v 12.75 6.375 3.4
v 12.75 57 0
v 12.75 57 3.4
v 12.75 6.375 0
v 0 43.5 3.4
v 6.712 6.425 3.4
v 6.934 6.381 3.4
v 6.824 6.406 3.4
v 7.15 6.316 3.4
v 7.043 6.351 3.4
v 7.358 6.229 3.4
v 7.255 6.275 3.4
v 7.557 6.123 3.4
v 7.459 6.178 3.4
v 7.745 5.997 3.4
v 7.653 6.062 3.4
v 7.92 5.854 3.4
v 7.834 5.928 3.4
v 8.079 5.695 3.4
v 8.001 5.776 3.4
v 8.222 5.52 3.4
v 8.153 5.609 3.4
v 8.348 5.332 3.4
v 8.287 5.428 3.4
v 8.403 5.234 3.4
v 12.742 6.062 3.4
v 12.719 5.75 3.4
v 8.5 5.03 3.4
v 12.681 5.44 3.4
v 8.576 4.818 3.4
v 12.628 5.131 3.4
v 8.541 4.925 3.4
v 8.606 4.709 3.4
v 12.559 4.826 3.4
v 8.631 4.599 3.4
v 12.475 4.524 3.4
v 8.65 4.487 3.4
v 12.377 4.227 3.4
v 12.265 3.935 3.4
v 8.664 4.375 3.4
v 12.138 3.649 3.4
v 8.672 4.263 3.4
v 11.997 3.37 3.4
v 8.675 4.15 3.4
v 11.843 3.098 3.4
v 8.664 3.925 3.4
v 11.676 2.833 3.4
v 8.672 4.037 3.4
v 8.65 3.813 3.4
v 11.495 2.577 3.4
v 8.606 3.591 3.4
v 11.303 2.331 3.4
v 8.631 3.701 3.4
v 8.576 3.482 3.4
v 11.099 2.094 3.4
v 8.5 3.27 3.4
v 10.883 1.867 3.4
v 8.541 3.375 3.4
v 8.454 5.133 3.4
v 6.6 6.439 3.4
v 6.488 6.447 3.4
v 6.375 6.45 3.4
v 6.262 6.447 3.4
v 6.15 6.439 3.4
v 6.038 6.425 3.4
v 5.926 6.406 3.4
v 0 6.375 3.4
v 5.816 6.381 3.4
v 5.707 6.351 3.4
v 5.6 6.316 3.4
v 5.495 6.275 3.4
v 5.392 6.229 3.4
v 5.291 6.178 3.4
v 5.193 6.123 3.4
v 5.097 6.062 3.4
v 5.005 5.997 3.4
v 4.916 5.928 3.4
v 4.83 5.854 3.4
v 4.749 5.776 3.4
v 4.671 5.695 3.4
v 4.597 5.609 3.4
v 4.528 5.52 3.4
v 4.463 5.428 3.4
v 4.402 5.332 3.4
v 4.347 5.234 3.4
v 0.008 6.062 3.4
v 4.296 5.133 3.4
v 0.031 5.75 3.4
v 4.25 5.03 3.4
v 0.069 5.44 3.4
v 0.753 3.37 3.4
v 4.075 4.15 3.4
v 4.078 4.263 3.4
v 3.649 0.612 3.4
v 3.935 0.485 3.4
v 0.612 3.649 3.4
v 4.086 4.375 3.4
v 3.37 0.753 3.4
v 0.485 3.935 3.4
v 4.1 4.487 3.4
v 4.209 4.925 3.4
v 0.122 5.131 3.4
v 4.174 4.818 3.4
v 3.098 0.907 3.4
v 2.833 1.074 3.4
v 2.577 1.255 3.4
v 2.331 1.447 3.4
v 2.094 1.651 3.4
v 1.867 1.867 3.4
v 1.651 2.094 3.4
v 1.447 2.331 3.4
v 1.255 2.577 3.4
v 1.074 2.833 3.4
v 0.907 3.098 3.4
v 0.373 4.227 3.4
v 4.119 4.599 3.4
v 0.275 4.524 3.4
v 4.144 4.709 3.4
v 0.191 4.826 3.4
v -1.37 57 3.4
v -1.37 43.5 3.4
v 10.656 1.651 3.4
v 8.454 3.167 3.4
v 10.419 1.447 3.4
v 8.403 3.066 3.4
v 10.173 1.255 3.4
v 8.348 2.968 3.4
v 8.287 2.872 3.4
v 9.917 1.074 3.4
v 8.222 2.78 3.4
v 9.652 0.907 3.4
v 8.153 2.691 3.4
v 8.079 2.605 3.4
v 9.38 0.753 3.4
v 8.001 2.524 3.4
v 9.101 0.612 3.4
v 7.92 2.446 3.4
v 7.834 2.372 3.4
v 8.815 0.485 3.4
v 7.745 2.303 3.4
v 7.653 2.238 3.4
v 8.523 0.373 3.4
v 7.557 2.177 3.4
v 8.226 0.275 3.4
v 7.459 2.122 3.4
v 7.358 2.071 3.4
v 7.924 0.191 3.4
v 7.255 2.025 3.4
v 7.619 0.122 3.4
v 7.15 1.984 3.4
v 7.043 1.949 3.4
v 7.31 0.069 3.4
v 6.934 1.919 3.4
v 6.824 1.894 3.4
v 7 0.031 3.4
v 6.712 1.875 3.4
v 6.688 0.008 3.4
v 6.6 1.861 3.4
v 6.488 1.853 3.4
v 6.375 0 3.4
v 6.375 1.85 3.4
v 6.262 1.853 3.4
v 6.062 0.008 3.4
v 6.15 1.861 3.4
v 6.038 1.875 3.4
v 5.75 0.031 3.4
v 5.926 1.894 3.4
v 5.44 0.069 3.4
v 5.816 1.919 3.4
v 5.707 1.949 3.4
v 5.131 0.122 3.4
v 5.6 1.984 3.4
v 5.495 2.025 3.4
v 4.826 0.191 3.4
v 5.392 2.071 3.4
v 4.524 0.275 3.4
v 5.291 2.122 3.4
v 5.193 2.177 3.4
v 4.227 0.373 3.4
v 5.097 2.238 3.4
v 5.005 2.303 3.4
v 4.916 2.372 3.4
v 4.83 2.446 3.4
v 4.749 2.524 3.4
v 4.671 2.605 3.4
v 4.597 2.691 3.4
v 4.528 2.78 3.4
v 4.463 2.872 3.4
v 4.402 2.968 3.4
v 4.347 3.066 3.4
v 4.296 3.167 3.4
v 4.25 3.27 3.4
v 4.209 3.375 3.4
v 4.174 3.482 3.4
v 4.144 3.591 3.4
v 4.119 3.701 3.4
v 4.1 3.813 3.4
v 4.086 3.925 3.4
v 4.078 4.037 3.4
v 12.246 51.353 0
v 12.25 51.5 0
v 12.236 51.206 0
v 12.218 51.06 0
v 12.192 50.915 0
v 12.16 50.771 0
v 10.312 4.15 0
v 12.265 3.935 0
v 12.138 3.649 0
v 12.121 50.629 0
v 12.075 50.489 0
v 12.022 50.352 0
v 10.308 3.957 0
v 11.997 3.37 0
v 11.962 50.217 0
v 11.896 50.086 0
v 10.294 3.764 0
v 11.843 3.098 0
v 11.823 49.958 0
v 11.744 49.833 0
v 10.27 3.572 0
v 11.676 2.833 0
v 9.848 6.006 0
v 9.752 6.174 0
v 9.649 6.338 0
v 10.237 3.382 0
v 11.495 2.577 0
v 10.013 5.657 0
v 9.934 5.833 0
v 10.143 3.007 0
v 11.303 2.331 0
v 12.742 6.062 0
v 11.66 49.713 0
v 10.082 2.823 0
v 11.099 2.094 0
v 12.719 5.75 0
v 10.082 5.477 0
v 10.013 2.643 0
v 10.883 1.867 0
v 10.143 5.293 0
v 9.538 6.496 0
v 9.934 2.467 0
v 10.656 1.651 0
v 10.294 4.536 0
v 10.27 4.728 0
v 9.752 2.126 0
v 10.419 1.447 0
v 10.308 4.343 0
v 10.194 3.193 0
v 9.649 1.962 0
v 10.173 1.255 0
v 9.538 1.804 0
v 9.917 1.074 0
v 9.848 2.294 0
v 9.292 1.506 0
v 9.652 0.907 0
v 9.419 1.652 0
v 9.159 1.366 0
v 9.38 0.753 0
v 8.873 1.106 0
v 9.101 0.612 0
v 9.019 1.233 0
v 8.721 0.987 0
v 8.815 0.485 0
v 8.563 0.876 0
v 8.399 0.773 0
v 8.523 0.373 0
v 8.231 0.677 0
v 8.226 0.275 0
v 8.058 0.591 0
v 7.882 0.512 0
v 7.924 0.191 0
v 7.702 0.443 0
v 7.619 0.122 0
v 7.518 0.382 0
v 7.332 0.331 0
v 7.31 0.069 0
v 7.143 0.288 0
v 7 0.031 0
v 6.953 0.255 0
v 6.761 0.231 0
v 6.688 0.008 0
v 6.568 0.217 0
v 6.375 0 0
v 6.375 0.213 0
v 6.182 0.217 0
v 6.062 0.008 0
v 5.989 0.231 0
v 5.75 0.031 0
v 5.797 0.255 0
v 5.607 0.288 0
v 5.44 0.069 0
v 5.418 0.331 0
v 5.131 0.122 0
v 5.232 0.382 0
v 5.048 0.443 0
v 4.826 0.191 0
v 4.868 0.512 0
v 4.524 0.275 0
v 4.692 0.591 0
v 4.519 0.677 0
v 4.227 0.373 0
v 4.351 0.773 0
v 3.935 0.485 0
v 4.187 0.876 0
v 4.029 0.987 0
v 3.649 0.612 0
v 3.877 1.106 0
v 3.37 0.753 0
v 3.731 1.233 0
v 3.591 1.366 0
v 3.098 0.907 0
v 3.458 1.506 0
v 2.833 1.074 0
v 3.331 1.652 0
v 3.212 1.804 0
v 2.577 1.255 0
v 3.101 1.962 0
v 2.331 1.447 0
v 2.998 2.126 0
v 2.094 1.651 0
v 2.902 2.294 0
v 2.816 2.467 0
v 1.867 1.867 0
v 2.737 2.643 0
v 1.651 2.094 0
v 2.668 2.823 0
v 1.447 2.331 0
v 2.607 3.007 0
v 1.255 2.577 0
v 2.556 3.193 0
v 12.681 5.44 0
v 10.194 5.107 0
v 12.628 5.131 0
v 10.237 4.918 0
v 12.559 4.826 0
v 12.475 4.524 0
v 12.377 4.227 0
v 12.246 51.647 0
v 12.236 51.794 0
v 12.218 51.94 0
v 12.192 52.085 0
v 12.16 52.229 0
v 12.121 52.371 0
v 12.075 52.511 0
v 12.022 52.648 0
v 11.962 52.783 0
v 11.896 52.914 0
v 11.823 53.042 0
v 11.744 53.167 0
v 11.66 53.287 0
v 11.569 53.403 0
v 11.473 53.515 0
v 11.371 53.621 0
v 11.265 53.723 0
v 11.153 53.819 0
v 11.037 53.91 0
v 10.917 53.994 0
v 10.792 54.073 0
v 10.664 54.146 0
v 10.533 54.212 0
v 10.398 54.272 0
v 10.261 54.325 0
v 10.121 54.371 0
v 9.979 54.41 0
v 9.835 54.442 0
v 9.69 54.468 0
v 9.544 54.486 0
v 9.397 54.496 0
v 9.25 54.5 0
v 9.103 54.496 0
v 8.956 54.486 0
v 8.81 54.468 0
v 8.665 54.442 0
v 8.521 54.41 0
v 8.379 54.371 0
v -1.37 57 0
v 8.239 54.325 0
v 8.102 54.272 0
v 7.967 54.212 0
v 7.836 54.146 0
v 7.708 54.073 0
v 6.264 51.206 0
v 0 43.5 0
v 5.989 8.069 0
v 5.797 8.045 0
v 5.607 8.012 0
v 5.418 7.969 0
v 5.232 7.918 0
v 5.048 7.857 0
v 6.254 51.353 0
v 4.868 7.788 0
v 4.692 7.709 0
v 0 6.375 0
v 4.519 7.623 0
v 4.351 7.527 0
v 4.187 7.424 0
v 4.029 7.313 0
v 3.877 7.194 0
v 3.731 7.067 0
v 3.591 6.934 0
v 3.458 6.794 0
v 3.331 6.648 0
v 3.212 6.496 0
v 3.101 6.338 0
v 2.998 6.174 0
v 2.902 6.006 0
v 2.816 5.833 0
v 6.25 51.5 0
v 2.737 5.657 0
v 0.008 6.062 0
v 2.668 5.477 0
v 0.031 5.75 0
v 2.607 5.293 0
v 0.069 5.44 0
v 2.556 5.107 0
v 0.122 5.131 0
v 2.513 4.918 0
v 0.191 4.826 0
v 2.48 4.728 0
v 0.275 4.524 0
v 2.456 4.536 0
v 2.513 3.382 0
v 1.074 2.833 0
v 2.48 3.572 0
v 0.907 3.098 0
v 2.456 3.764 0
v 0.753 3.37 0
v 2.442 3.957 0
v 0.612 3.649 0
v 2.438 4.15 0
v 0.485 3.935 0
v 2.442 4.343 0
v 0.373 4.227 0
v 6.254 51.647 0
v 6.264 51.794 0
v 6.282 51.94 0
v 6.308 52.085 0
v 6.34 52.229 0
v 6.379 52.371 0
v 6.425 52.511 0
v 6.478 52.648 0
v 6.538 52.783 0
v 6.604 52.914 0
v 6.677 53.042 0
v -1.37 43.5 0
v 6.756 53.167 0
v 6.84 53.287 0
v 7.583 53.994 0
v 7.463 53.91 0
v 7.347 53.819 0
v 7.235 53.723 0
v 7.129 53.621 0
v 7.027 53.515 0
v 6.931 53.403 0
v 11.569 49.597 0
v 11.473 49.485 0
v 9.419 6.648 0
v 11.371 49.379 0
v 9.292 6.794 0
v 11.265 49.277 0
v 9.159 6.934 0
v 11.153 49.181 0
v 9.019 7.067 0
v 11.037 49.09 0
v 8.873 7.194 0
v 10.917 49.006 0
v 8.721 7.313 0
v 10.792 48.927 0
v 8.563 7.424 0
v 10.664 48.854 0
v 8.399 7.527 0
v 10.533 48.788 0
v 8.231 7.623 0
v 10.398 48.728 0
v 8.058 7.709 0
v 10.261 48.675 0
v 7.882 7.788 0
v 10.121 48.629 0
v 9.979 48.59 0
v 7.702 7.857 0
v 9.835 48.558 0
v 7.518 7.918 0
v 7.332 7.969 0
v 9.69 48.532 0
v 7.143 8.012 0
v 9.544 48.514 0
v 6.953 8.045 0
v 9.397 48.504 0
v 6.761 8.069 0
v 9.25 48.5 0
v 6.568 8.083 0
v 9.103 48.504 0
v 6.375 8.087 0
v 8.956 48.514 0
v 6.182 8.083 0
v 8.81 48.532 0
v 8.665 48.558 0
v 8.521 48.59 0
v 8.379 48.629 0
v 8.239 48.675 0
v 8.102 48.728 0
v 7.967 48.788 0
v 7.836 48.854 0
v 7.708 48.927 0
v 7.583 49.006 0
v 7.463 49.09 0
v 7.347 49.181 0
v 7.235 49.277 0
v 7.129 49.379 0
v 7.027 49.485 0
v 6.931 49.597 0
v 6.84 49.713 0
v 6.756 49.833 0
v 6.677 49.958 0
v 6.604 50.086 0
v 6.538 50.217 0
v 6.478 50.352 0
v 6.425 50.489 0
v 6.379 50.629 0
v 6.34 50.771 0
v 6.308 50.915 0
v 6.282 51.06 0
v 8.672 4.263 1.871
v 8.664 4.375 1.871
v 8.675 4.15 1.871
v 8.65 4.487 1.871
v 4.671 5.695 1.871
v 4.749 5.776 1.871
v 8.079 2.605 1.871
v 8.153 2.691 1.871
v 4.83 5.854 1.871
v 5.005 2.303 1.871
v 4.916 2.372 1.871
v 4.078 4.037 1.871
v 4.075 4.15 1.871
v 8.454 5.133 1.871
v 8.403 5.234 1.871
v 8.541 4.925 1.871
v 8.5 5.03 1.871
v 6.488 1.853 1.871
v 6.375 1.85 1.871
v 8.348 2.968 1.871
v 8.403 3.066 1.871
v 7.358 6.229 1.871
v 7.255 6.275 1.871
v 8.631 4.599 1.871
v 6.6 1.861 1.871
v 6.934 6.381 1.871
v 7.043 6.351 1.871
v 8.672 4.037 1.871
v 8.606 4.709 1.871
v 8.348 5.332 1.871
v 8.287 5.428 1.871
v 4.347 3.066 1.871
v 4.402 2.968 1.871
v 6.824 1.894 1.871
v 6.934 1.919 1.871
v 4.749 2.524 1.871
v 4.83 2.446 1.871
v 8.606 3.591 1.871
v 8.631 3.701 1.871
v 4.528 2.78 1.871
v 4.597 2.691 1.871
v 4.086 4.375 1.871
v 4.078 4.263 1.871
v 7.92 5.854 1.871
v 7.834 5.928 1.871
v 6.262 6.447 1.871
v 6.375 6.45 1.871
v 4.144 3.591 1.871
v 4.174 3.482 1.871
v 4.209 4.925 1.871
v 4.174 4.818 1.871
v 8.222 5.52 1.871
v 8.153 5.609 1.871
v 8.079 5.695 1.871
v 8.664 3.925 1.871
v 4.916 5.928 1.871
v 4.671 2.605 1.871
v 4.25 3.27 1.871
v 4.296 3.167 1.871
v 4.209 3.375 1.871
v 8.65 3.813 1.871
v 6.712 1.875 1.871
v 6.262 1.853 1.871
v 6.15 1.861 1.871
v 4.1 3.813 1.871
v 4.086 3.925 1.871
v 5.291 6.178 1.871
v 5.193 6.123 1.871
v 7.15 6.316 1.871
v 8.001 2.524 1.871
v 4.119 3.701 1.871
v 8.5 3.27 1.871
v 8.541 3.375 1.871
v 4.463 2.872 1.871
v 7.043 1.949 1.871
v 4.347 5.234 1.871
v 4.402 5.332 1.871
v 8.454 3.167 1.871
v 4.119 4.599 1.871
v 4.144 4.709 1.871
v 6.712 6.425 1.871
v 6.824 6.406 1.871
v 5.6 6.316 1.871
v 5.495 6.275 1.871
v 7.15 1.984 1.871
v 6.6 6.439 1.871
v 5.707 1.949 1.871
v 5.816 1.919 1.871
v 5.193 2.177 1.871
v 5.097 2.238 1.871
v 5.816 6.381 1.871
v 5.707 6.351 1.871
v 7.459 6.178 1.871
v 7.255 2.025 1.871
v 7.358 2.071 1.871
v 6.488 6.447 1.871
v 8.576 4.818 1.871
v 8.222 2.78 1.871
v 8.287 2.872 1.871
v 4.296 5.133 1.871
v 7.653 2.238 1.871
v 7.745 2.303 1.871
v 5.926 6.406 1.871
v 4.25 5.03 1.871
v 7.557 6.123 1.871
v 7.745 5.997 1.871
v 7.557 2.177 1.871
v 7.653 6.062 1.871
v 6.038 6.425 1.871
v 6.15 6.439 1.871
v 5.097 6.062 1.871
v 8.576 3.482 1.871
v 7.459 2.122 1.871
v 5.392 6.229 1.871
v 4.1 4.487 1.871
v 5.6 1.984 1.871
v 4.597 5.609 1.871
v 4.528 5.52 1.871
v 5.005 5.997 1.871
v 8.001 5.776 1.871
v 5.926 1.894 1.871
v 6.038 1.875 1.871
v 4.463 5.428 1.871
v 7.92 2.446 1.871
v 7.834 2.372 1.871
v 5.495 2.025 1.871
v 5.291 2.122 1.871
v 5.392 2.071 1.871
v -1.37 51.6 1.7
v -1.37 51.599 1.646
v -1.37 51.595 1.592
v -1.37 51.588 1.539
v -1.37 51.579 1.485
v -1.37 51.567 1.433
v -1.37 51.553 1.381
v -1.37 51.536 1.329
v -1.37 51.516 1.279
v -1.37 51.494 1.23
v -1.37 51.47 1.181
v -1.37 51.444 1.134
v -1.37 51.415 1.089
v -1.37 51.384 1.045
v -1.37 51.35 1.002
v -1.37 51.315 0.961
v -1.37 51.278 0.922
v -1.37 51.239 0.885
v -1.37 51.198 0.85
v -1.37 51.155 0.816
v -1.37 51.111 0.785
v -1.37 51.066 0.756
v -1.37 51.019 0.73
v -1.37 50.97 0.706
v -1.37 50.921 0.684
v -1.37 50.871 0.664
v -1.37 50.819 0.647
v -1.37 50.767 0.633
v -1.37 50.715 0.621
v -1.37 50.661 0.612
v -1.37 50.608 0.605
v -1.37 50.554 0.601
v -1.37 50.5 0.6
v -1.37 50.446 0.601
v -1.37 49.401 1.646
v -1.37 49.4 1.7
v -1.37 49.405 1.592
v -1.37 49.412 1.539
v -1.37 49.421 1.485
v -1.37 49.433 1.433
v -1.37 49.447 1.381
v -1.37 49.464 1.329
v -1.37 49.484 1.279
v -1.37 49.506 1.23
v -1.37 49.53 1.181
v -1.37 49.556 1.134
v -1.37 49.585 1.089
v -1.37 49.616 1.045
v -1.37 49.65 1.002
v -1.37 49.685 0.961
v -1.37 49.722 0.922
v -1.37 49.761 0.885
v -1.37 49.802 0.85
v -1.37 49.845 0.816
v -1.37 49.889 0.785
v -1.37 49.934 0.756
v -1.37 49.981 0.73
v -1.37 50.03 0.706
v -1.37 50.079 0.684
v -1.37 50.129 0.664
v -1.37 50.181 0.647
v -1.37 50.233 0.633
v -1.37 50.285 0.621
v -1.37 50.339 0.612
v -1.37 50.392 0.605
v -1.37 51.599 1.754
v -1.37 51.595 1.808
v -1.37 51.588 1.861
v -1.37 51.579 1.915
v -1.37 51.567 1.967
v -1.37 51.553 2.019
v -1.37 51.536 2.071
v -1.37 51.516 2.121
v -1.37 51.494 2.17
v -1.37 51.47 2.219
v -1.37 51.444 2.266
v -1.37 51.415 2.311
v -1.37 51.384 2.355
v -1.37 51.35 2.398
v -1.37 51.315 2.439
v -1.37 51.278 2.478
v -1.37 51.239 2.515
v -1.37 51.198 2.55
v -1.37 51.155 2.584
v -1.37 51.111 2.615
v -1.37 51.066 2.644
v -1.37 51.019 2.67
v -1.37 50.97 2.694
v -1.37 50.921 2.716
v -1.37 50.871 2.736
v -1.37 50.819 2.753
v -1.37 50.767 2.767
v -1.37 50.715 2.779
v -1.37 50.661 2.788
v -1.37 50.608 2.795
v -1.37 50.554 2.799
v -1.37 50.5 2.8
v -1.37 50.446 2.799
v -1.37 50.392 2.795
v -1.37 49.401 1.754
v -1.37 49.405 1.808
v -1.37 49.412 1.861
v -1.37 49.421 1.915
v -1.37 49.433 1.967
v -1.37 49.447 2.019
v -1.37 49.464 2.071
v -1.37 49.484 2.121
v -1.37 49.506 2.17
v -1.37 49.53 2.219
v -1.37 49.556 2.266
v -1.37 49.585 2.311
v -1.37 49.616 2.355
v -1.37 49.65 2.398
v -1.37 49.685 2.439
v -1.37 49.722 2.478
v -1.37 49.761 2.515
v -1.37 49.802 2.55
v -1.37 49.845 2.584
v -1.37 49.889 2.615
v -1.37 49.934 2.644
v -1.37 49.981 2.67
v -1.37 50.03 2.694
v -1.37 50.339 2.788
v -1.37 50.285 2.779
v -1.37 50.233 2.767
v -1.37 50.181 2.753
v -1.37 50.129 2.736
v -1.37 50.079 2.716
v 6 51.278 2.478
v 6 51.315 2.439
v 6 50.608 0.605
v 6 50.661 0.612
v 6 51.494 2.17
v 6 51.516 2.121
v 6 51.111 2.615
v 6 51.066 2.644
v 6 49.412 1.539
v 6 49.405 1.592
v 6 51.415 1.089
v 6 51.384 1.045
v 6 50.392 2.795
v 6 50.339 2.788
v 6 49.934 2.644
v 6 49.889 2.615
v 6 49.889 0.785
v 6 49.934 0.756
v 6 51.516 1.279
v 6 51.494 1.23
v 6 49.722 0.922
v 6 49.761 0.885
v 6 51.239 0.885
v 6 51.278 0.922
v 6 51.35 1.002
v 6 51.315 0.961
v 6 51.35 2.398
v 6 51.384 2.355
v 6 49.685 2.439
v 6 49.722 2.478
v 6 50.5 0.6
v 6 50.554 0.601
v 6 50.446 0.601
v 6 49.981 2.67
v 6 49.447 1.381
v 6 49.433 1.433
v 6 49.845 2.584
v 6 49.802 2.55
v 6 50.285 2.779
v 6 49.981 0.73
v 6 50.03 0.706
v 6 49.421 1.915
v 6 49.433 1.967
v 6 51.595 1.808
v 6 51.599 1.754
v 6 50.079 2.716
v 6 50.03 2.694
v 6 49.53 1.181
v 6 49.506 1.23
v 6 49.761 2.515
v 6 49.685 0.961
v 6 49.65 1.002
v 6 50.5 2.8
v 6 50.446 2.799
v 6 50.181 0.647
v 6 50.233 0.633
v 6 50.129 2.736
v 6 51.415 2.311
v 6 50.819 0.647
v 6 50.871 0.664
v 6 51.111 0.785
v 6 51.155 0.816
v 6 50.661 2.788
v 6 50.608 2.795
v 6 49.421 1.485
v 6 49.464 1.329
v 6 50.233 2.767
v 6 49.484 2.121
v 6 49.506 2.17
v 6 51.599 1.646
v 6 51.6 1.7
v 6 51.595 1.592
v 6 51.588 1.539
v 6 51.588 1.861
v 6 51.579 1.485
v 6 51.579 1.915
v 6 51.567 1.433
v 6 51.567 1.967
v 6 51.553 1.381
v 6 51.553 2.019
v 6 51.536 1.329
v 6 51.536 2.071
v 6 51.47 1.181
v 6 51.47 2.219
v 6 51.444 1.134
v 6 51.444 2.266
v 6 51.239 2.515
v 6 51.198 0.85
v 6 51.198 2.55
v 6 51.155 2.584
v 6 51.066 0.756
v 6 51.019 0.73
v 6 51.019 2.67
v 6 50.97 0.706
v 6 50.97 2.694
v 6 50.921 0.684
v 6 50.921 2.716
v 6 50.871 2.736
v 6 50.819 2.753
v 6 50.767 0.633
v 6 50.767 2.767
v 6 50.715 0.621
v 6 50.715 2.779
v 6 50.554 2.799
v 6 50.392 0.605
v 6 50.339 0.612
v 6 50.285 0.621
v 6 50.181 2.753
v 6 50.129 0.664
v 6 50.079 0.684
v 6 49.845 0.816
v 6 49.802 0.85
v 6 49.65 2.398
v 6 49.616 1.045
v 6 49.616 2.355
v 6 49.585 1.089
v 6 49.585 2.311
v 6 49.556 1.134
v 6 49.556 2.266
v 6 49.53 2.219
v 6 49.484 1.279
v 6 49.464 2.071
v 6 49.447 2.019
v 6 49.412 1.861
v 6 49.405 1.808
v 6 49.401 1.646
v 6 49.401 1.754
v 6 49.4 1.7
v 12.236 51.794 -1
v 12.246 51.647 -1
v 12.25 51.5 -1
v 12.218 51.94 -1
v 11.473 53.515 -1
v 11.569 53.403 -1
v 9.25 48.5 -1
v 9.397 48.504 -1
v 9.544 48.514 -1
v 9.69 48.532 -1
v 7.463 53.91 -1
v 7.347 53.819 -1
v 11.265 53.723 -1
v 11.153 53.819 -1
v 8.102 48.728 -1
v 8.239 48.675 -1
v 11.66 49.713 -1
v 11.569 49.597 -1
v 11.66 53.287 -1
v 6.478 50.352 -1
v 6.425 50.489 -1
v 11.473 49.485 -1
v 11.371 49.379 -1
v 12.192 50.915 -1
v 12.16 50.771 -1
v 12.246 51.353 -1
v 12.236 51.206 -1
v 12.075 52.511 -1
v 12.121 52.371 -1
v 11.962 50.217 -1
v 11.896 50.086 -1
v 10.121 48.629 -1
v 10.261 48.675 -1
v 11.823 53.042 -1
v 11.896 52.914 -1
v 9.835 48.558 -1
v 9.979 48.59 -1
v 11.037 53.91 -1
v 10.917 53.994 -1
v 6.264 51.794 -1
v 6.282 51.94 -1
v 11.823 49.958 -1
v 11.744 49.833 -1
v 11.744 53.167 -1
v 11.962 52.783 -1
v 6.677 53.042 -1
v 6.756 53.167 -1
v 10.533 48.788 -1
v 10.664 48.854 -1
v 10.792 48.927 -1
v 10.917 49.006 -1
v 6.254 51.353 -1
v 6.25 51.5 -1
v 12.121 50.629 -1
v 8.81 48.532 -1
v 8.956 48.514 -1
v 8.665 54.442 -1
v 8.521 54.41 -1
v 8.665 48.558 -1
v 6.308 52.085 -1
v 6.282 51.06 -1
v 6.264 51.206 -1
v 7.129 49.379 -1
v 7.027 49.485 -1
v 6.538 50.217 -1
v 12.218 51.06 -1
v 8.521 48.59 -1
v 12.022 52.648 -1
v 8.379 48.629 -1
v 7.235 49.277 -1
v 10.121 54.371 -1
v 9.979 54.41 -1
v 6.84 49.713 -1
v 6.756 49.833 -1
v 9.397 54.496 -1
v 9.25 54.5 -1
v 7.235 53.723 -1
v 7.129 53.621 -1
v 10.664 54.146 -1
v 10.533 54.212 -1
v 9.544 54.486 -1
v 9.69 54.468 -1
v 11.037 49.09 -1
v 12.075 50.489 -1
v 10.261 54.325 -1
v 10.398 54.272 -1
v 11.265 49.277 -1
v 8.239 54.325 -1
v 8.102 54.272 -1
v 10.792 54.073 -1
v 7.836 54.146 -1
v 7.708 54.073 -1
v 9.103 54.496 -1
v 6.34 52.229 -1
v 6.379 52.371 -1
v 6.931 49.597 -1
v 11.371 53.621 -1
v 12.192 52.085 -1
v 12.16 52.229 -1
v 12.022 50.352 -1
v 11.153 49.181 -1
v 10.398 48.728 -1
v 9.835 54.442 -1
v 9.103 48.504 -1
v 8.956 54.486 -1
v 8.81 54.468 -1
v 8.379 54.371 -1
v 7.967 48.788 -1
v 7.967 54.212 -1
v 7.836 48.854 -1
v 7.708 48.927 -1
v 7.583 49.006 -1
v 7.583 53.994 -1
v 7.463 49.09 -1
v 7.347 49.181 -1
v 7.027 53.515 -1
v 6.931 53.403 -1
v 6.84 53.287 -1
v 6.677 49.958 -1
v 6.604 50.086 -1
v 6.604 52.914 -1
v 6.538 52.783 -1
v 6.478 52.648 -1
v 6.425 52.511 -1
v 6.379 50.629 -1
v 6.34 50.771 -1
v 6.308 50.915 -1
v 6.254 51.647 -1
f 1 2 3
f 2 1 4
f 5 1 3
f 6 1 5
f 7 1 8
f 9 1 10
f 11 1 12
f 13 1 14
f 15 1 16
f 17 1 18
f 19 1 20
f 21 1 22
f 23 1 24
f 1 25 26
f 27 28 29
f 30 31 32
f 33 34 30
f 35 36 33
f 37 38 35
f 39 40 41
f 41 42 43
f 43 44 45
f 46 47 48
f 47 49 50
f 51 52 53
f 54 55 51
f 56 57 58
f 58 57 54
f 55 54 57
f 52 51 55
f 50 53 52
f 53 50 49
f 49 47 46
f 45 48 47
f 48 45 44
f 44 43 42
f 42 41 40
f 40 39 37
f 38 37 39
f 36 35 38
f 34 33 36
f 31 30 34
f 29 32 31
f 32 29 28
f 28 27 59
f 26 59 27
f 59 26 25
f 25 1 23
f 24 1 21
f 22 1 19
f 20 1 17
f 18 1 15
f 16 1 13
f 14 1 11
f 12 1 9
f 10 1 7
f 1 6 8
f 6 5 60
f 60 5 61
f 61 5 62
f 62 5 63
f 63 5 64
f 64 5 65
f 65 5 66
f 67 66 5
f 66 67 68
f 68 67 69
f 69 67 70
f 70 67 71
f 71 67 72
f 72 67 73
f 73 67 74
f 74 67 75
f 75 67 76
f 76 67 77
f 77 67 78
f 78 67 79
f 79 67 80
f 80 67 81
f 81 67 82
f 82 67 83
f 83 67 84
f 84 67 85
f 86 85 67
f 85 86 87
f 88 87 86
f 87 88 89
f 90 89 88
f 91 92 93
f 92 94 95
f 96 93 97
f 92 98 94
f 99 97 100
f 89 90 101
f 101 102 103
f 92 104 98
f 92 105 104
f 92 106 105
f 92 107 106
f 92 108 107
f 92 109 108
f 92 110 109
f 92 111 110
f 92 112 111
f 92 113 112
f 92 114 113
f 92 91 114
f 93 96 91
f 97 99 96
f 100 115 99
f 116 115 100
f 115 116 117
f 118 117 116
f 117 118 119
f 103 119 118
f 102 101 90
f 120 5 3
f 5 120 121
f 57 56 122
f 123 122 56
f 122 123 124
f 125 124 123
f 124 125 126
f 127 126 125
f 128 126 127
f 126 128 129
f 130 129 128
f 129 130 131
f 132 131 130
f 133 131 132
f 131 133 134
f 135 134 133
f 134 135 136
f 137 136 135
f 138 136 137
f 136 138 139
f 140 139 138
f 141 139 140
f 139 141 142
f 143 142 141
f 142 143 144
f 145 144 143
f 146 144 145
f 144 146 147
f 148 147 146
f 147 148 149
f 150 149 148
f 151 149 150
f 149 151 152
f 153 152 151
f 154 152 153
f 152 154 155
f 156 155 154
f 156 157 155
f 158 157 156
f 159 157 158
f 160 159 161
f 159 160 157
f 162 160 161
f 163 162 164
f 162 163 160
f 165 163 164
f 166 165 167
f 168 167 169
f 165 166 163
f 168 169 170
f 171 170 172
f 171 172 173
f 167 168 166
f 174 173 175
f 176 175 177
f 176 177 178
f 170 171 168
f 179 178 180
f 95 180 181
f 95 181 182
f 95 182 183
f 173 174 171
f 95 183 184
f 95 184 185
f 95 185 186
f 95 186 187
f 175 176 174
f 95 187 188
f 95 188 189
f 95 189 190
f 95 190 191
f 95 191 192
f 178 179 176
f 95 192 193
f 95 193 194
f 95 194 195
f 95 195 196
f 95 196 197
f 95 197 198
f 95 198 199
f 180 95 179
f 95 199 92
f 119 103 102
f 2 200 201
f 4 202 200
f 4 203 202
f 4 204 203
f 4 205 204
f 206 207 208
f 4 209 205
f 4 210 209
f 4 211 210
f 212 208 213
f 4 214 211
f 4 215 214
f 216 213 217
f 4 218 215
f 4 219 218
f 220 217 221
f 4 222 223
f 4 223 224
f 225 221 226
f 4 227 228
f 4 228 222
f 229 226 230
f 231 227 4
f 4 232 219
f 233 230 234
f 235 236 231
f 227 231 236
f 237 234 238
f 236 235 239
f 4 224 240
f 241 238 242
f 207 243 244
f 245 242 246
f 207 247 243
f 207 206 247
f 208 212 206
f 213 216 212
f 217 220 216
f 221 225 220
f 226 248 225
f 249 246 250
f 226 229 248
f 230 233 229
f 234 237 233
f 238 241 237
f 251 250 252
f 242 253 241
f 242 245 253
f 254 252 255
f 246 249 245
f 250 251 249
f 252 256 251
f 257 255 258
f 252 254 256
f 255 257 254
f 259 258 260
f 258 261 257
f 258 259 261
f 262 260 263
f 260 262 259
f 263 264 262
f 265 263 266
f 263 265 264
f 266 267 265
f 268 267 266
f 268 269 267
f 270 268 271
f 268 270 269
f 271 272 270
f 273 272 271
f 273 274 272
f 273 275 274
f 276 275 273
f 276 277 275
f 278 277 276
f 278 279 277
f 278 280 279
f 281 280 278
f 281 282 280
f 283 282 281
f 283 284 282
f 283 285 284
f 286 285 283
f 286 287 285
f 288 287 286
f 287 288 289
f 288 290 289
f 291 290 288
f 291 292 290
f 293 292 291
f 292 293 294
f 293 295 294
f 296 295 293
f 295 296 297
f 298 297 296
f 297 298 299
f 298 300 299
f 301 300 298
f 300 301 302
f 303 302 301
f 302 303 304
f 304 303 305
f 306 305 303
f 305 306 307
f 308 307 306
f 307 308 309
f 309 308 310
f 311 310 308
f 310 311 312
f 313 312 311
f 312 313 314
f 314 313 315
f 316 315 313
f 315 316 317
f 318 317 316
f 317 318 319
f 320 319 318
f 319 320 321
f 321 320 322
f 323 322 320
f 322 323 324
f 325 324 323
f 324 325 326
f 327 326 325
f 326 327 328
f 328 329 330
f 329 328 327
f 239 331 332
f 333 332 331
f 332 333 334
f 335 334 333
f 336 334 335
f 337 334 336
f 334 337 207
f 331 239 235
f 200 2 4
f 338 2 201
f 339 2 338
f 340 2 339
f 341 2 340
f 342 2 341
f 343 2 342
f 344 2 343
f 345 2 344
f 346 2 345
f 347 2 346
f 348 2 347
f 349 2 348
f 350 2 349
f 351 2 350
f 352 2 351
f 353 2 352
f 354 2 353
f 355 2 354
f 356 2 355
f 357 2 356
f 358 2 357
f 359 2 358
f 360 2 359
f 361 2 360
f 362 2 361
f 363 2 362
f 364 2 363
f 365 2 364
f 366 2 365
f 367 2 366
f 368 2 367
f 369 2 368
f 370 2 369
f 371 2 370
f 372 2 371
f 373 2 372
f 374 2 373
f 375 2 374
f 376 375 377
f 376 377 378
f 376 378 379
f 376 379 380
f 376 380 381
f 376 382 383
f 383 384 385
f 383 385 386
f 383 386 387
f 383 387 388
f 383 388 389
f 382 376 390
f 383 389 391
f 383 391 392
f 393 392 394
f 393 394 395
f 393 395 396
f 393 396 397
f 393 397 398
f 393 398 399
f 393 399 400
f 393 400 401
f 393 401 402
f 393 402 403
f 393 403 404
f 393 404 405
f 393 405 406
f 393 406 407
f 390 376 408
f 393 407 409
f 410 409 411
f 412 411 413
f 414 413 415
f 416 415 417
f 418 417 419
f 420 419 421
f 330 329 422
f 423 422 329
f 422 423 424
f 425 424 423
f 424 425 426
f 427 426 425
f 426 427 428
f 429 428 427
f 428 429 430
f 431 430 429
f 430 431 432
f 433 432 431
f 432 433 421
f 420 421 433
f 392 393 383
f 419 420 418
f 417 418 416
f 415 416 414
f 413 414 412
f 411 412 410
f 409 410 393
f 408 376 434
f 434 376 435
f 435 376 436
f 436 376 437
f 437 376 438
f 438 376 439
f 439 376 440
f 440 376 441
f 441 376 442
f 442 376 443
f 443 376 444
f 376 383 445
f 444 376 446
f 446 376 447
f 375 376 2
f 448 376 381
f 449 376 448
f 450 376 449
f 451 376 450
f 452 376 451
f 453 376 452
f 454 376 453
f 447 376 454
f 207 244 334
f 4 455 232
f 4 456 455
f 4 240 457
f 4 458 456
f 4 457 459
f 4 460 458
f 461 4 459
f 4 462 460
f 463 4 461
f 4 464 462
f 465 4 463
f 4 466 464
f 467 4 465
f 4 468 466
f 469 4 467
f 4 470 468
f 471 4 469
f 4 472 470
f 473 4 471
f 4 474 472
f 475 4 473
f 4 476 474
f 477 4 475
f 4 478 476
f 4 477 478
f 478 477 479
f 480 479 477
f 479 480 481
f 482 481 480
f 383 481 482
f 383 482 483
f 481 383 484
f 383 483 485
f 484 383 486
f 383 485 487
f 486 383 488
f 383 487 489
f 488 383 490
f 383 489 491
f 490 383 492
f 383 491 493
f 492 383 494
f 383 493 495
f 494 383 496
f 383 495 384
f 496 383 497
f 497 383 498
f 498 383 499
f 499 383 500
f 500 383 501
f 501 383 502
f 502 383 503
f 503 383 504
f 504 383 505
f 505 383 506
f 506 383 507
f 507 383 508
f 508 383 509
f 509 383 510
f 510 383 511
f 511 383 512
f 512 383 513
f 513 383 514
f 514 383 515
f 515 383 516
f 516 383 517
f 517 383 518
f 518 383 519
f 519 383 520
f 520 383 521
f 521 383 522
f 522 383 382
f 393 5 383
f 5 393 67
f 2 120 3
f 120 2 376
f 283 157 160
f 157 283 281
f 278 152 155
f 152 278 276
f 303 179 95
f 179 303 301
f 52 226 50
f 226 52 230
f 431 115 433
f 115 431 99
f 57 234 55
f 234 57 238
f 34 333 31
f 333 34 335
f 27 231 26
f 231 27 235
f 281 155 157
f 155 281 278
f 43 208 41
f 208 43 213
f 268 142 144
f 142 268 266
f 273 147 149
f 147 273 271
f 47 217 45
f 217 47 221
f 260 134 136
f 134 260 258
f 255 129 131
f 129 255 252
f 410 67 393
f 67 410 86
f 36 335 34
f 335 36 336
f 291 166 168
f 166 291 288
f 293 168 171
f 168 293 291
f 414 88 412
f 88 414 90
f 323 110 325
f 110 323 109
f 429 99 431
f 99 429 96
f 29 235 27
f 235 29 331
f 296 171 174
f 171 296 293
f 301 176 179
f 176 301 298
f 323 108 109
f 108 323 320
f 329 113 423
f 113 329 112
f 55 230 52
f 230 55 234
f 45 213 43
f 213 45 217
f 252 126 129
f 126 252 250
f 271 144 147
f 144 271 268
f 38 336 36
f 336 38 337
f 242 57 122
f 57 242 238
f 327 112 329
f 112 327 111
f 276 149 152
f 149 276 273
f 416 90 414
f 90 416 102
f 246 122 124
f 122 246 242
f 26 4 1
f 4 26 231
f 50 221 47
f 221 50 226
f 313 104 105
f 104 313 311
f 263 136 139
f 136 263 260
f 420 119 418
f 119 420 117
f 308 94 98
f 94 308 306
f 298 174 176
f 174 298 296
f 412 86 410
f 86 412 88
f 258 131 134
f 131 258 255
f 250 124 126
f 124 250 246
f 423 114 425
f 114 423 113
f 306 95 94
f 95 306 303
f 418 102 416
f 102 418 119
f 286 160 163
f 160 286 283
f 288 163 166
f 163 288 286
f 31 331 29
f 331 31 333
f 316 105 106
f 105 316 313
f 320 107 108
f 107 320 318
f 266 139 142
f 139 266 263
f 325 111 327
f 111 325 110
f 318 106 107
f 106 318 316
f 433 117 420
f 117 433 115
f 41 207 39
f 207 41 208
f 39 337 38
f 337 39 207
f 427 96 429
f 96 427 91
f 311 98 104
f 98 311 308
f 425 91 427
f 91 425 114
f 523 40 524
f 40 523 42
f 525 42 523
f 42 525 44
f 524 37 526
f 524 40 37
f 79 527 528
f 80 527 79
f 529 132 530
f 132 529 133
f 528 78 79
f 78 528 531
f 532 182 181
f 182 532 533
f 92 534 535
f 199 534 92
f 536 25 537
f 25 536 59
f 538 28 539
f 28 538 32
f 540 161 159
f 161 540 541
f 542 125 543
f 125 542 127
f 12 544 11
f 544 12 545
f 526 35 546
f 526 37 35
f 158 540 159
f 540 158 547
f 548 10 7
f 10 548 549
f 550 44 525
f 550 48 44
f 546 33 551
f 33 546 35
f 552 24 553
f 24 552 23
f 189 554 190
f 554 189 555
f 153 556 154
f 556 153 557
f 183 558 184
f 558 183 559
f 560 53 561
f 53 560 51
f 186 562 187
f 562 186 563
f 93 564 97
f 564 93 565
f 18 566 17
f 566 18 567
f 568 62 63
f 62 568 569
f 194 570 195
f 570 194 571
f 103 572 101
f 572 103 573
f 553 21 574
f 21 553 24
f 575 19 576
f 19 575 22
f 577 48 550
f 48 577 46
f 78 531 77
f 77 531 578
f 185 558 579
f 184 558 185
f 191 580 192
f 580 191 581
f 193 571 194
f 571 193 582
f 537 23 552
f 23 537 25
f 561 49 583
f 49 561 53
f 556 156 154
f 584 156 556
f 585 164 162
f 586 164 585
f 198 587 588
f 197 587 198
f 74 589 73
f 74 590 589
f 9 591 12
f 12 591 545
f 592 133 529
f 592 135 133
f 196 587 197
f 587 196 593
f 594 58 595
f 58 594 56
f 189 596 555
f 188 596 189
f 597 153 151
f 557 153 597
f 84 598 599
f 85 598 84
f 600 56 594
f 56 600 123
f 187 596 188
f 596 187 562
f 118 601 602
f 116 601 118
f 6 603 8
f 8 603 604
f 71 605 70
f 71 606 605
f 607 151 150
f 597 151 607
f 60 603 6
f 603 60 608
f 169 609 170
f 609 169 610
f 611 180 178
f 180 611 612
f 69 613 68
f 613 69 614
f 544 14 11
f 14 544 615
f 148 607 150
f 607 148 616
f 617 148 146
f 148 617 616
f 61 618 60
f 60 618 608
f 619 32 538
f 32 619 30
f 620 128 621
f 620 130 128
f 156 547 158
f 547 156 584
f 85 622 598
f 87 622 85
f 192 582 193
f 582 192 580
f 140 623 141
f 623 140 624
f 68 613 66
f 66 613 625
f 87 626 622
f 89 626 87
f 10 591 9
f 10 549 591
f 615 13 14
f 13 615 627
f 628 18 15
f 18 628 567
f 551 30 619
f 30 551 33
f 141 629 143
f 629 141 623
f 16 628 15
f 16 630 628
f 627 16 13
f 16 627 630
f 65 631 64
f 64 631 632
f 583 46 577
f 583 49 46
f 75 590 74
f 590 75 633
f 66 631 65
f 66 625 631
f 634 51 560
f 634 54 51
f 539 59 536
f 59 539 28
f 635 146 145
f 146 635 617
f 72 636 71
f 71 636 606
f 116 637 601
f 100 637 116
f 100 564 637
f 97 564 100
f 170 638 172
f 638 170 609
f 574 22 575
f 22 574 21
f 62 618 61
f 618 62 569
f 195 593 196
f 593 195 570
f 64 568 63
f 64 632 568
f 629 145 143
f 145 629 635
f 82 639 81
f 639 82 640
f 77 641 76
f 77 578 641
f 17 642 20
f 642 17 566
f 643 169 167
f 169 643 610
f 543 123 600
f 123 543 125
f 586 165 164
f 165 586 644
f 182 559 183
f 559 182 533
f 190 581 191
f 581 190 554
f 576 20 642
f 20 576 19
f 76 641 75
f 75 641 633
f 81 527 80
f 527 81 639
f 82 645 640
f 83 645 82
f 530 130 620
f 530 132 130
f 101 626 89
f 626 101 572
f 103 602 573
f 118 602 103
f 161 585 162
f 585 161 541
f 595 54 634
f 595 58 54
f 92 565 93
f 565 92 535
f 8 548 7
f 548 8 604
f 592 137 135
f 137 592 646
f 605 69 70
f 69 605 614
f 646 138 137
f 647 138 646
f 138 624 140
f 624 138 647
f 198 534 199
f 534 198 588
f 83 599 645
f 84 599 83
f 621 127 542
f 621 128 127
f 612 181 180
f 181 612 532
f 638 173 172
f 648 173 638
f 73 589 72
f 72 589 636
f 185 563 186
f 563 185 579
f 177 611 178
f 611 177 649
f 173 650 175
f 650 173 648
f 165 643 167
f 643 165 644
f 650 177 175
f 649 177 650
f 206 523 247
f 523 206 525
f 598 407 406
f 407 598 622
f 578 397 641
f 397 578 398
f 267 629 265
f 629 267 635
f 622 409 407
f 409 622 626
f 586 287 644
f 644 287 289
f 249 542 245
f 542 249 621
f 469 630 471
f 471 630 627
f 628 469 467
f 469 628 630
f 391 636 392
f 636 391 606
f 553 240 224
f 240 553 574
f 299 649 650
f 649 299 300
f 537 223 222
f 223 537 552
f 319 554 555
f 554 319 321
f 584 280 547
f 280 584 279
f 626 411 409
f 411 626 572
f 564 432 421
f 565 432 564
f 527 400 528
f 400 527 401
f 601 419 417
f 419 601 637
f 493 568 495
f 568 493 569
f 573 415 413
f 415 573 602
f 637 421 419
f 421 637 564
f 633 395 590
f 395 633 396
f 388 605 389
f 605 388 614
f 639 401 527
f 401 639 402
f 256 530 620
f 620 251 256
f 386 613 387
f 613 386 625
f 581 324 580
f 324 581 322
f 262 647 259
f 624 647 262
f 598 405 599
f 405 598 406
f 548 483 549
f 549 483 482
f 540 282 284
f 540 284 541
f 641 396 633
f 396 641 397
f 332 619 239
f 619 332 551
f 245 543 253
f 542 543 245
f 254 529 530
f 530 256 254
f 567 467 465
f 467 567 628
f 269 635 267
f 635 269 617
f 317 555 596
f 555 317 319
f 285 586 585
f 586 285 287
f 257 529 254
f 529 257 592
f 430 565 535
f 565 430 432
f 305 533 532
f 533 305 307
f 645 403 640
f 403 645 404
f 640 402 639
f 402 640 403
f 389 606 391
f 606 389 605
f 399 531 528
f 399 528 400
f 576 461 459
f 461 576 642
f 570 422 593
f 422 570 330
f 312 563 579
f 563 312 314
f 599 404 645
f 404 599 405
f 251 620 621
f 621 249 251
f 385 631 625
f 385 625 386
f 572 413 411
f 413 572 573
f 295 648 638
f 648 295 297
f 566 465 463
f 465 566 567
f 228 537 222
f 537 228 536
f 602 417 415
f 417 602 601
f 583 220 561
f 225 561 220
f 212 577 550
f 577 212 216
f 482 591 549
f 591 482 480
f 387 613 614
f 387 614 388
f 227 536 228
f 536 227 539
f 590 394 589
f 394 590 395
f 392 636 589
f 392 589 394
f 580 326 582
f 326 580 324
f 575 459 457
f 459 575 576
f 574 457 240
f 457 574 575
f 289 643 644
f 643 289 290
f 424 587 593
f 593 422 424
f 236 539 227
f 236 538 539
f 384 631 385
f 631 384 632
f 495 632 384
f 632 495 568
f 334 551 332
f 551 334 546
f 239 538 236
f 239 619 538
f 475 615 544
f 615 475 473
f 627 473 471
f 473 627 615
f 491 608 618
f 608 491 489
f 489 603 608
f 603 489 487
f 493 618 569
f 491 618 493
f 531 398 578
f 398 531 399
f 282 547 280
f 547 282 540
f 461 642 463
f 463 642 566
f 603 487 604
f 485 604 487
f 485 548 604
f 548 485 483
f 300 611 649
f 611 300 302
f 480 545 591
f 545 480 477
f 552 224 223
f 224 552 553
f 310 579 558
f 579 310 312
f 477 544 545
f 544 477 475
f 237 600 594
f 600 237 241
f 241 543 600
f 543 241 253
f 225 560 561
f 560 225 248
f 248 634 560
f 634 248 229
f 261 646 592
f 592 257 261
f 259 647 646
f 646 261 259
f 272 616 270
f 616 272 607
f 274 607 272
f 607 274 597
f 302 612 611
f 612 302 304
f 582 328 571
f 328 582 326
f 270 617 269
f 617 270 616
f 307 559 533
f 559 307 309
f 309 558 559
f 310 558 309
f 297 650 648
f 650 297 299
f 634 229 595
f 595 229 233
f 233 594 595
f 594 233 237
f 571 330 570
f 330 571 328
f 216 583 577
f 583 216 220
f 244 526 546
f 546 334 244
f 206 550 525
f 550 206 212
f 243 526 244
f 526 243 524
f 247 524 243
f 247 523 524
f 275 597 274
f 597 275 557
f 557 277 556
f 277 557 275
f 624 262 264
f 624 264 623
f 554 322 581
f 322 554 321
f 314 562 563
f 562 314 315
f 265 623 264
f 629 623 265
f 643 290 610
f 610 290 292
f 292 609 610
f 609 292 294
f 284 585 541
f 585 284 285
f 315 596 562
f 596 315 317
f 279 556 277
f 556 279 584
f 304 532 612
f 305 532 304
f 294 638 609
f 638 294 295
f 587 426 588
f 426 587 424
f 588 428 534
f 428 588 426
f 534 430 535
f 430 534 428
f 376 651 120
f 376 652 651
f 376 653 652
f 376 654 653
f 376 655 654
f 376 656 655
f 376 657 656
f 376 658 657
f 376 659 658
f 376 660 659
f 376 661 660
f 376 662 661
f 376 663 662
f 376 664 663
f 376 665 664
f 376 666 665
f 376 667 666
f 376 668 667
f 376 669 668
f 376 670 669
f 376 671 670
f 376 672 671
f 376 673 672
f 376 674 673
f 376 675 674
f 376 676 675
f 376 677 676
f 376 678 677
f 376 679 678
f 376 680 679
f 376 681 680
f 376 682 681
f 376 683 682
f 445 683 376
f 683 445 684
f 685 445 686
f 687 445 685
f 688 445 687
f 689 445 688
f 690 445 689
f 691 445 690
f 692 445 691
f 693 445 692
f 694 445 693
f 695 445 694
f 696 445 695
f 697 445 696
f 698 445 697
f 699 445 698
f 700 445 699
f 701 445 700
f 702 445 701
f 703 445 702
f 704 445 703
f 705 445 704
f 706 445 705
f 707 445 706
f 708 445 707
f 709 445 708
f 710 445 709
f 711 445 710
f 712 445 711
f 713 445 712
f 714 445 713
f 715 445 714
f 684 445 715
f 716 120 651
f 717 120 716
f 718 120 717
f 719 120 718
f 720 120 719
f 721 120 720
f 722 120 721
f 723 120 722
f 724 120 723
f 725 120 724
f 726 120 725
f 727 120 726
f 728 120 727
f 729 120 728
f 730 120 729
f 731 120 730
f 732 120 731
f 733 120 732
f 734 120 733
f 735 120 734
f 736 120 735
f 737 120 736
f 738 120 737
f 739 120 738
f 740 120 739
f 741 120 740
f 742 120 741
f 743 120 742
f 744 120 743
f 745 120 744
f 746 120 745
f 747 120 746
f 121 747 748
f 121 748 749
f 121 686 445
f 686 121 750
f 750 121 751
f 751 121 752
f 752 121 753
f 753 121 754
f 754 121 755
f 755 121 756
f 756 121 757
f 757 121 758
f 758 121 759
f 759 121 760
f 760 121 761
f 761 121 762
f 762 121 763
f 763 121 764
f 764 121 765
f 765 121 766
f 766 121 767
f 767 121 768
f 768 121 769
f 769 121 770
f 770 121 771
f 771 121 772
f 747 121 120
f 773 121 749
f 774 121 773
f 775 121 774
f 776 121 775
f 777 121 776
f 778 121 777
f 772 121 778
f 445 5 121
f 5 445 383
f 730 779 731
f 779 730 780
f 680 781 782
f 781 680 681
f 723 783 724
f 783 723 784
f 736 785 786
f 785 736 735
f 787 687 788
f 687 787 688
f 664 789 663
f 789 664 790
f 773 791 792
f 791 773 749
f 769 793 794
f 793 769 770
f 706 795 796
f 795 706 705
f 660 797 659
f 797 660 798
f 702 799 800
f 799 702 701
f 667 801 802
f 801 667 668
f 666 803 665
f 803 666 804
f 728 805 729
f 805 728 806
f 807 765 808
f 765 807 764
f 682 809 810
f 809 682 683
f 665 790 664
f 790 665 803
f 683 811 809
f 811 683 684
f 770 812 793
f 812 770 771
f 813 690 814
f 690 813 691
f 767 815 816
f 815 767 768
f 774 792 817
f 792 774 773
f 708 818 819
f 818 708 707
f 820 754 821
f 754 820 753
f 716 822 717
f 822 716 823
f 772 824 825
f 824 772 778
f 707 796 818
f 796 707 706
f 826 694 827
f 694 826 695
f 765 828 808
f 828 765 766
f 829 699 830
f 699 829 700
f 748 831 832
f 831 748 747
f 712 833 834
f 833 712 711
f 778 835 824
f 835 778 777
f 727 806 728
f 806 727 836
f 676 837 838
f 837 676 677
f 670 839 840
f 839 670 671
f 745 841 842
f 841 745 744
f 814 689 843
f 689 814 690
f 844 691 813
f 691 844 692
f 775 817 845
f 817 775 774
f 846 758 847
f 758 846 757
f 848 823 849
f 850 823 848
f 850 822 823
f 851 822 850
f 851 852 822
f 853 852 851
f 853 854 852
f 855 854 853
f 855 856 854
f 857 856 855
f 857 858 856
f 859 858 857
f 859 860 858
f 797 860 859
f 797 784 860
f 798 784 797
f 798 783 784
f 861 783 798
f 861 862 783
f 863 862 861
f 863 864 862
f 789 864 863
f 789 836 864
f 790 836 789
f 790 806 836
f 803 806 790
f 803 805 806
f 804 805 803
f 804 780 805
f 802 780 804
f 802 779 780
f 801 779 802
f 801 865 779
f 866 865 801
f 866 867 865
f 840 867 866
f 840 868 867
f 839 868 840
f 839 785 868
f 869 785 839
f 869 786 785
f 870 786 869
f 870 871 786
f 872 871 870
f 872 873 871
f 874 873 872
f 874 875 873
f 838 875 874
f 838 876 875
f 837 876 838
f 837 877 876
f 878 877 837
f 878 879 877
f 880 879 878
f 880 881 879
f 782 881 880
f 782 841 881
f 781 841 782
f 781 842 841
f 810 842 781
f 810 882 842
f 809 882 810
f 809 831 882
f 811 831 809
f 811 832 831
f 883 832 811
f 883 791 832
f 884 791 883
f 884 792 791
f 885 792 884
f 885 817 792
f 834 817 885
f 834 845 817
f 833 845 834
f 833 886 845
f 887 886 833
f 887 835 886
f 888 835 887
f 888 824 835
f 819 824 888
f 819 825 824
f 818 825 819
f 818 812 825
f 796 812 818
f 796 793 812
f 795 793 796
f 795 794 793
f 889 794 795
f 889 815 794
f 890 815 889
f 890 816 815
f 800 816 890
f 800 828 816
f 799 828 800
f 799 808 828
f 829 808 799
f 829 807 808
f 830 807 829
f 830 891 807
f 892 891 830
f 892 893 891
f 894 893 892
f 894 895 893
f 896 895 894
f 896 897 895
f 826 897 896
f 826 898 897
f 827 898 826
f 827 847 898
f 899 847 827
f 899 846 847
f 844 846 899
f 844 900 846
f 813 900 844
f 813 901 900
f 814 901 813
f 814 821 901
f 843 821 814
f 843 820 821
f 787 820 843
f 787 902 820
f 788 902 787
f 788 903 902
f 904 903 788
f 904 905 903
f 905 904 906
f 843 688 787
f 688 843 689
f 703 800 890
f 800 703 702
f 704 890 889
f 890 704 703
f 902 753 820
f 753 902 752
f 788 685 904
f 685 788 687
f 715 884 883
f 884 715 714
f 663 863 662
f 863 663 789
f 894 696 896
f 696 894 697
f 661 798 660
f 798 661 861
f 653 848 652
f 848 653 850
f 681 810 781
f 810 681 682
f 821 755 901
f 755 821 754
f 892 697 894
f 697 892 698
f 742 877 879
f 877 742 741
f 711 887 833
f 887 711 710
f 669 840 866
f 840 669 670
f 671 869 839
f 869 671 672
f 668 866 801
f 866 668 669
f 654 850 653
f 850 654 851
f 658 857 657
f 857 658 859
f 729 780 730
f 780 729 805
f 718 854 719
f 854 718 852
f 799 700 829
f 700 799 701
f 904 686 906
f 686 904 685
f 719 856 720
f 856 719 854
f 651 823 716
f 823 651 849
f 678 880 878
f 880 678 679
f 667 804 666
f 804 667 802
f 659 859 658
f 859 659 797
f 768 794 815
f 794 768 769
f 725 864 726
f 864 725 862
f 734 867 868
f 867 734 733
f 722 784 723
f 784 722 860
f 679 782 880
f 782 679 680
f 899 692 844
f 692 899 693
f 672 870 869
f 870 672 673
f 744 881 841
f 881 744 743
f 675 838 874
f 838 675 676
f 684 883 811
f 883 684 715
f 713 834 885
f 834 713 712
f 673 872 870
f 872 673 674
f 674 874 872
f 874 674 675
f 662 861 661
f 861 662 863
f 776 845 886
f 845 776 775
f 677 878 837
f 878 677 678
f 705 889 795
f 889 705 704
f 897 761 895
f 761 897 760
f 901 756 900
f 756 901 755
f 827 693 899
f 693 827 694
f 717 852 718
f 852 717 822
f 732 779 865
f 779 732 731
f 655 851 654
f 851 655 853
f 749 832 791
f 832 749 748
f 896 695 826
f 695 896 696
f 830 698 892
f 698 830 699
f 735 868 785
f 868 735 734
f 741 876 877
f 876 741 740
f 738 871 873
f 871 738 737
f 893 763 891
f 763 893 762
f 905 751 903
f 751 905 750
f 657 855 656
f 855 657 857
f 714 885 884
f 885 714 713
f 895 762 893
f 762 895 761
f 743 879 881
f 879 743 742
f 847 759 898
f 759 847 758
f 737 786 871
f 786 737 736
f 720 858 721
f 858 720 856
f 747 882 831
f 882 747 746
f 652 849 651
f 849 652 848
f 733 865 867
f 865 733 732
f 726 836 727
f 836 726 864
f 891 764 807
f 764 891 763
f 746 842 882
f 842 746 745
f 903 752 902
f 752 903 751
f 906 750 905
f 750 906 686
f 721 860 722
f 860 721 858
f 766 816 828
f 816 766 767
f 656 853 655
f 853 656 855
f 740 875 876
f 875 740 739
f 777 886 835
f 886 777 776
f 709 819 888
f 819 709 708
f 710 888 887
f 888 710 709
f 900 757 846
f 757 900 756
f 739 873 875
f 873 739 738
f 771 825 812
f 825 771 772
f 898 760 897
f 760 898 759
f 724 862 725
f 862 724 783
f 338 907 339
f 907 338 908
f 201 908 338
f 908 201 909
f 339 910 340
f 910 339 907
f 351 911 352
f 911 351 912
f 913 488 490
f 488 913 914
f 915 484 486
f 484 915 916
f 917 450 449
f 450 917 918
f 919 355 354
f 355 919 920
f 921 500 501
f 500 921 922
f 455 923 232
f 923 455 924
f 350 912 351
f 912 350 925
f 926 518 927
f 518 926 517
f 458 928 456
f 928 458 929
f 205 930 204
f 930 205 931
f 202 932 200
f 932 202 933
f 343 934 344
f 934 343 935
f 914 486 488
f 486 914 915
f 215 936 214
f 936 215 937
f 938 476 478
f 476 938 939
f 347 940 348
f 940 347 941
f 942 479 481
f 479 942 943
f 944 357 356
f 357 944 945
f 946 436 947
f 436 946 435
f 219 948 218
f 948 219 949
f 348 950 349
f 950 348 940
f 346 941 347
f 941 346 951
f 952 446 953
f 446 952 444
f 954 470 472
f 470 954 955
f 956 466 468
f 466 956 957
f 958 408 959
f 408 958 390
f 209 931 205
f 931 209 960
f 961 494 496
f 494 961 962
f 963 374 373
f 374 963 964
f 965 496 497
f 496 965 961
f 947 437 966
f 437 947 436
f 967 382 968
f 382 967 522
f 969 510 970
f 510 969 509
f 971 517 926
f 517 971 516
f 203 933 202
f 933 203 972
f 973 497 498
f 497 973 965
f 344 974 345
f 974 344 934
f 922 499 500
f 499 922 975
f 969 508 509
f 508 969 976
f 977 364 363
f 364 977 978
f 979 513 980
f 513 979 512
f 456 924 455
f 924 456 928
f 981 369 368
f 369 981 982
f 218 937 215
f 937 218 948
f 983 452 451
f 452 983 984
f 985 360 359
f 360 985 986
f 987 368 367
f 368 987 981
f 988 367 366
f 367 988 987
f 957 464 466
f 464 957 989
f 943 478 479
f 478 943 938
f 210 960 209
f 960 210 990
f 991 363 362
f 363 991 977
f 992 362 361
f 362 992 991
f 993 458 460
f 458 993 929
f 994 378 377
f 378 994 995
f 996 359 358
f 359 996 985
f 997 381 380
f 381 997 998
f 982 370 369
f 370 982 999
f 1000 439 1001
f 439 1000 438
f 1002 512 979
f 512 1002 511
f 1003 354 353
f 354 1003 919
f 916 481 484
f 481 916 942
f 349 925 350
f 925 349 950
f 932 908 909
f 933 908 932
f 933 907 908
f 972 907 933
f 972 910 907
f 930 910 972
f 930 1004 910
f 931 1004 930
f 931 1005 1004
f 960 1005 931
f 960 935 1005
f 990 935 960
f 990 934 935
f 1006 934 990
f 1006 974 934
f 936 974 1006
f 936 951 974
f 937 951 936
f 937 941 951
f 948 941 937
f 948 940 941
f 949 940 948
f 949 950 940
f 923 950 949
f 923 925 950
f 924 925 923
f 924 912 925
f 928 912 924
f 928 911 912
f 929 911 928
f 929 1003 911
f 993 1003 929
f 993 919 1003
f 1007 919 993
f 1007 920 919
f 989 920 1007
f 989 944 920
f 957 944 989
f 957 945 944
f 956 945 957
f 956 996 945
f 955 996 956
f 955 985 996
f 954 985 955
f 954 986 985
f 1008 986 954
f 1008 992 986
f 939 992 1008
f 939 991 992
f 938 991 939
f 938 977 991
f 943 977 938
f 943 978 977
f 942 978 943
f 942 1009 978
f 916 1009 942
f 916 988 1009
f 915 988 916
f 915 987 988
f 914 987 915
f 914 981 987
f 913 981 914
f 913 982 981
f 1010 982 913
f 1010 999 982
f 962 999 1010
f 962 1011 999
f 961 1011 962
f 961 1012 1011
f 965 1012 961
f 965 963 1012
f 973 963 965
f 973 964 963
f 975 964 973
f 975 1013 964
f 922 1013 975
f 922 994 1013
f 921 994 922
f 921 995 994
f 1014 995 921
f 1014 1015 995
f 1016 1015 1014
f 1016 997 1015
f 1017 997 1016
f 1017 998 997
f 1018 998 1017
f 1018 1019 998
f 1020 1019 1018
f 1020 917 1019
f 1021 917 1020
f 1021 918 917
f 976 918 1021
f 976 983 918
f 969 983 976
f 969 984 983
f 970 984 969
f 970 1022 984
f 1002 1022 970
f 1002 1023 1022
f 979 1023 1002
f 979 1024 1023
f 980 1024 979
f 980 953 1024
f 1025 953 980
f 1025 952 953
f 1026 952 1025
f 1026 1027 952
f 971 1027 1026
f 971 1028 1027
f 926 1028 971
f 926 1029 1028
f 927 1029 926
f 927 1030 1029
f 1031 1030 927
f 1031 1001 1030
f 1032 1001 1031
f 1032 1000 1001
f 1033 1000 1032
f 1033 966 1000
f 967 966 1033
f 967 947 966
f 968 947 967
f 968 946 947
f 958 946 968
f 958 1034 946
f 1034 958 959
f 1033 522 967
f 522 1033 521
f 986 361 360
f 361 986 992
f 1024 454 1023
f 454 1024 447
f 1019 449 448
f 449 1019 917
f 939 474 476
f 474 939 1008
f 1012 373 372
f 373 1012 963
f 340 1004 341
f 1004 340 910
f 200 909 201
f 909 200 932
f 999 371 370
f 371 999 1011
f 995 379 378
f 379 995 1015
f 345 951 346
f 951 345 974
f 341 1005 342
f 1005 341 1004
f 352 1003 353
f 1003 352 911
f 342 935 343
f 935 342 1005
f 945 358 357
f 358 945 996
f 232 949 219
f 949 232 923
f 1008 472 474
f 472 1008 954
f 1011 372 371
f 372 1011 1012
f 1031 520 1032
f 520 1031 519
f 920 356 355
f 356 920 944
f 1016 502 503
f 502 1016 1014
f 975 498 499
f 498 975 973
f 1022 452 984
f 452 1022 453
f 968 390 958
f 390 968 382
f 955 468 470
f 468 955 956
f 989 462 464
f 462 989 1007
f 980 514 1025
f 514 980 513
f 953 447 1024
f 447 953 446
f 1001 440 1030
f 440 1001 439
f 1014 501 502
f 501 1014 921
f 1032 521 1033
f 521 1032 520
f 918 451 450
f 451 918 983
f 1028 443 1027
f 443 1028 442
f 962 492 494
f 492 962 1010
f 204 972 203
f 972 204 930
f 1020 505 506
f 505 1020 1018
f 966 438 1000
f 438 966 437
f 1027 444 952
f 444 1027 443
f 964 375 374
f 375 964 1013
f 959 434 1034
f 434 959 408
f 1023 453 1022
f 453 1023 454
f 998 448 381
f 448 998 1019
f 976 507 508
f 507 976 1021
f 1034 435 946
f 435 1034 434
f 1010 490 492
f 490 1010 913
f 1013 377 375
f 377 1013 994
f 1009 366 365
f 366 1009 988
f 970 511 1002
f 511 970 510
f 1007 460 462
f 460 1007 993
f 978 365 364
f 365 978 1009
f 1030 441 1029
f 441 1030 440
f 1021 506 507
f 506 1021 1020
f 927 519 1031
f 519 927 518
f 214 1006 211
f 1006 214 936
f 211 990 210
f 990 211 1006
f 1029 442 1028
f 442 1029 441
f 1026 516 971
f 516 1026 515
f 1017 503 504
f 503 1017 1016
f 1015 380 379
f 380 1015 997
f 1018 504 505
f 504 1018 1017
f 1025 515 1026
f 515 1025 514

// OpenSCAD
//horn_primer_slide.scad - Dr.Gerg's Hornady Lock-n-Load primer carrier slide
// OpenSCAD definition file
// https://www.drgerg.com
// printed in PLA at .10mm layer height with 100% infill.
//
// 12.75/2 = 6.375
//
//
$fn=128;
difference(){
    union(){
        difference(){
            difference(){
                union(){
                    translate([0,6.375,0])
                    cube([12.75,(57-(6.375)),3.4]);
                    translate([6.375,6.375,0])
                    cylinder(h = 3.4, d = 12.75, center = false);
                    };
                    translate([6.375,4.15,0])
                    cylinder(h = 10, r = 2.3, center = true);
                }
                translate([6.375,4.15,.5])
        cylinder(h = 8, d1 = 14, d2=0, center = true);

        }
        translate([-1.37,57-13.5,0])
        cube([14.12,13.5,3.4]);
    }
rotate([0,90,0])
translate([-1.7,57-6.5,-4])
cylinder(h = 10, r = 1.1, center = false); // 6.1 deep
}
translate([12.75-3.5,57-5.5,-1])
cylinder(h = 3.4, r = 3, center = false);
